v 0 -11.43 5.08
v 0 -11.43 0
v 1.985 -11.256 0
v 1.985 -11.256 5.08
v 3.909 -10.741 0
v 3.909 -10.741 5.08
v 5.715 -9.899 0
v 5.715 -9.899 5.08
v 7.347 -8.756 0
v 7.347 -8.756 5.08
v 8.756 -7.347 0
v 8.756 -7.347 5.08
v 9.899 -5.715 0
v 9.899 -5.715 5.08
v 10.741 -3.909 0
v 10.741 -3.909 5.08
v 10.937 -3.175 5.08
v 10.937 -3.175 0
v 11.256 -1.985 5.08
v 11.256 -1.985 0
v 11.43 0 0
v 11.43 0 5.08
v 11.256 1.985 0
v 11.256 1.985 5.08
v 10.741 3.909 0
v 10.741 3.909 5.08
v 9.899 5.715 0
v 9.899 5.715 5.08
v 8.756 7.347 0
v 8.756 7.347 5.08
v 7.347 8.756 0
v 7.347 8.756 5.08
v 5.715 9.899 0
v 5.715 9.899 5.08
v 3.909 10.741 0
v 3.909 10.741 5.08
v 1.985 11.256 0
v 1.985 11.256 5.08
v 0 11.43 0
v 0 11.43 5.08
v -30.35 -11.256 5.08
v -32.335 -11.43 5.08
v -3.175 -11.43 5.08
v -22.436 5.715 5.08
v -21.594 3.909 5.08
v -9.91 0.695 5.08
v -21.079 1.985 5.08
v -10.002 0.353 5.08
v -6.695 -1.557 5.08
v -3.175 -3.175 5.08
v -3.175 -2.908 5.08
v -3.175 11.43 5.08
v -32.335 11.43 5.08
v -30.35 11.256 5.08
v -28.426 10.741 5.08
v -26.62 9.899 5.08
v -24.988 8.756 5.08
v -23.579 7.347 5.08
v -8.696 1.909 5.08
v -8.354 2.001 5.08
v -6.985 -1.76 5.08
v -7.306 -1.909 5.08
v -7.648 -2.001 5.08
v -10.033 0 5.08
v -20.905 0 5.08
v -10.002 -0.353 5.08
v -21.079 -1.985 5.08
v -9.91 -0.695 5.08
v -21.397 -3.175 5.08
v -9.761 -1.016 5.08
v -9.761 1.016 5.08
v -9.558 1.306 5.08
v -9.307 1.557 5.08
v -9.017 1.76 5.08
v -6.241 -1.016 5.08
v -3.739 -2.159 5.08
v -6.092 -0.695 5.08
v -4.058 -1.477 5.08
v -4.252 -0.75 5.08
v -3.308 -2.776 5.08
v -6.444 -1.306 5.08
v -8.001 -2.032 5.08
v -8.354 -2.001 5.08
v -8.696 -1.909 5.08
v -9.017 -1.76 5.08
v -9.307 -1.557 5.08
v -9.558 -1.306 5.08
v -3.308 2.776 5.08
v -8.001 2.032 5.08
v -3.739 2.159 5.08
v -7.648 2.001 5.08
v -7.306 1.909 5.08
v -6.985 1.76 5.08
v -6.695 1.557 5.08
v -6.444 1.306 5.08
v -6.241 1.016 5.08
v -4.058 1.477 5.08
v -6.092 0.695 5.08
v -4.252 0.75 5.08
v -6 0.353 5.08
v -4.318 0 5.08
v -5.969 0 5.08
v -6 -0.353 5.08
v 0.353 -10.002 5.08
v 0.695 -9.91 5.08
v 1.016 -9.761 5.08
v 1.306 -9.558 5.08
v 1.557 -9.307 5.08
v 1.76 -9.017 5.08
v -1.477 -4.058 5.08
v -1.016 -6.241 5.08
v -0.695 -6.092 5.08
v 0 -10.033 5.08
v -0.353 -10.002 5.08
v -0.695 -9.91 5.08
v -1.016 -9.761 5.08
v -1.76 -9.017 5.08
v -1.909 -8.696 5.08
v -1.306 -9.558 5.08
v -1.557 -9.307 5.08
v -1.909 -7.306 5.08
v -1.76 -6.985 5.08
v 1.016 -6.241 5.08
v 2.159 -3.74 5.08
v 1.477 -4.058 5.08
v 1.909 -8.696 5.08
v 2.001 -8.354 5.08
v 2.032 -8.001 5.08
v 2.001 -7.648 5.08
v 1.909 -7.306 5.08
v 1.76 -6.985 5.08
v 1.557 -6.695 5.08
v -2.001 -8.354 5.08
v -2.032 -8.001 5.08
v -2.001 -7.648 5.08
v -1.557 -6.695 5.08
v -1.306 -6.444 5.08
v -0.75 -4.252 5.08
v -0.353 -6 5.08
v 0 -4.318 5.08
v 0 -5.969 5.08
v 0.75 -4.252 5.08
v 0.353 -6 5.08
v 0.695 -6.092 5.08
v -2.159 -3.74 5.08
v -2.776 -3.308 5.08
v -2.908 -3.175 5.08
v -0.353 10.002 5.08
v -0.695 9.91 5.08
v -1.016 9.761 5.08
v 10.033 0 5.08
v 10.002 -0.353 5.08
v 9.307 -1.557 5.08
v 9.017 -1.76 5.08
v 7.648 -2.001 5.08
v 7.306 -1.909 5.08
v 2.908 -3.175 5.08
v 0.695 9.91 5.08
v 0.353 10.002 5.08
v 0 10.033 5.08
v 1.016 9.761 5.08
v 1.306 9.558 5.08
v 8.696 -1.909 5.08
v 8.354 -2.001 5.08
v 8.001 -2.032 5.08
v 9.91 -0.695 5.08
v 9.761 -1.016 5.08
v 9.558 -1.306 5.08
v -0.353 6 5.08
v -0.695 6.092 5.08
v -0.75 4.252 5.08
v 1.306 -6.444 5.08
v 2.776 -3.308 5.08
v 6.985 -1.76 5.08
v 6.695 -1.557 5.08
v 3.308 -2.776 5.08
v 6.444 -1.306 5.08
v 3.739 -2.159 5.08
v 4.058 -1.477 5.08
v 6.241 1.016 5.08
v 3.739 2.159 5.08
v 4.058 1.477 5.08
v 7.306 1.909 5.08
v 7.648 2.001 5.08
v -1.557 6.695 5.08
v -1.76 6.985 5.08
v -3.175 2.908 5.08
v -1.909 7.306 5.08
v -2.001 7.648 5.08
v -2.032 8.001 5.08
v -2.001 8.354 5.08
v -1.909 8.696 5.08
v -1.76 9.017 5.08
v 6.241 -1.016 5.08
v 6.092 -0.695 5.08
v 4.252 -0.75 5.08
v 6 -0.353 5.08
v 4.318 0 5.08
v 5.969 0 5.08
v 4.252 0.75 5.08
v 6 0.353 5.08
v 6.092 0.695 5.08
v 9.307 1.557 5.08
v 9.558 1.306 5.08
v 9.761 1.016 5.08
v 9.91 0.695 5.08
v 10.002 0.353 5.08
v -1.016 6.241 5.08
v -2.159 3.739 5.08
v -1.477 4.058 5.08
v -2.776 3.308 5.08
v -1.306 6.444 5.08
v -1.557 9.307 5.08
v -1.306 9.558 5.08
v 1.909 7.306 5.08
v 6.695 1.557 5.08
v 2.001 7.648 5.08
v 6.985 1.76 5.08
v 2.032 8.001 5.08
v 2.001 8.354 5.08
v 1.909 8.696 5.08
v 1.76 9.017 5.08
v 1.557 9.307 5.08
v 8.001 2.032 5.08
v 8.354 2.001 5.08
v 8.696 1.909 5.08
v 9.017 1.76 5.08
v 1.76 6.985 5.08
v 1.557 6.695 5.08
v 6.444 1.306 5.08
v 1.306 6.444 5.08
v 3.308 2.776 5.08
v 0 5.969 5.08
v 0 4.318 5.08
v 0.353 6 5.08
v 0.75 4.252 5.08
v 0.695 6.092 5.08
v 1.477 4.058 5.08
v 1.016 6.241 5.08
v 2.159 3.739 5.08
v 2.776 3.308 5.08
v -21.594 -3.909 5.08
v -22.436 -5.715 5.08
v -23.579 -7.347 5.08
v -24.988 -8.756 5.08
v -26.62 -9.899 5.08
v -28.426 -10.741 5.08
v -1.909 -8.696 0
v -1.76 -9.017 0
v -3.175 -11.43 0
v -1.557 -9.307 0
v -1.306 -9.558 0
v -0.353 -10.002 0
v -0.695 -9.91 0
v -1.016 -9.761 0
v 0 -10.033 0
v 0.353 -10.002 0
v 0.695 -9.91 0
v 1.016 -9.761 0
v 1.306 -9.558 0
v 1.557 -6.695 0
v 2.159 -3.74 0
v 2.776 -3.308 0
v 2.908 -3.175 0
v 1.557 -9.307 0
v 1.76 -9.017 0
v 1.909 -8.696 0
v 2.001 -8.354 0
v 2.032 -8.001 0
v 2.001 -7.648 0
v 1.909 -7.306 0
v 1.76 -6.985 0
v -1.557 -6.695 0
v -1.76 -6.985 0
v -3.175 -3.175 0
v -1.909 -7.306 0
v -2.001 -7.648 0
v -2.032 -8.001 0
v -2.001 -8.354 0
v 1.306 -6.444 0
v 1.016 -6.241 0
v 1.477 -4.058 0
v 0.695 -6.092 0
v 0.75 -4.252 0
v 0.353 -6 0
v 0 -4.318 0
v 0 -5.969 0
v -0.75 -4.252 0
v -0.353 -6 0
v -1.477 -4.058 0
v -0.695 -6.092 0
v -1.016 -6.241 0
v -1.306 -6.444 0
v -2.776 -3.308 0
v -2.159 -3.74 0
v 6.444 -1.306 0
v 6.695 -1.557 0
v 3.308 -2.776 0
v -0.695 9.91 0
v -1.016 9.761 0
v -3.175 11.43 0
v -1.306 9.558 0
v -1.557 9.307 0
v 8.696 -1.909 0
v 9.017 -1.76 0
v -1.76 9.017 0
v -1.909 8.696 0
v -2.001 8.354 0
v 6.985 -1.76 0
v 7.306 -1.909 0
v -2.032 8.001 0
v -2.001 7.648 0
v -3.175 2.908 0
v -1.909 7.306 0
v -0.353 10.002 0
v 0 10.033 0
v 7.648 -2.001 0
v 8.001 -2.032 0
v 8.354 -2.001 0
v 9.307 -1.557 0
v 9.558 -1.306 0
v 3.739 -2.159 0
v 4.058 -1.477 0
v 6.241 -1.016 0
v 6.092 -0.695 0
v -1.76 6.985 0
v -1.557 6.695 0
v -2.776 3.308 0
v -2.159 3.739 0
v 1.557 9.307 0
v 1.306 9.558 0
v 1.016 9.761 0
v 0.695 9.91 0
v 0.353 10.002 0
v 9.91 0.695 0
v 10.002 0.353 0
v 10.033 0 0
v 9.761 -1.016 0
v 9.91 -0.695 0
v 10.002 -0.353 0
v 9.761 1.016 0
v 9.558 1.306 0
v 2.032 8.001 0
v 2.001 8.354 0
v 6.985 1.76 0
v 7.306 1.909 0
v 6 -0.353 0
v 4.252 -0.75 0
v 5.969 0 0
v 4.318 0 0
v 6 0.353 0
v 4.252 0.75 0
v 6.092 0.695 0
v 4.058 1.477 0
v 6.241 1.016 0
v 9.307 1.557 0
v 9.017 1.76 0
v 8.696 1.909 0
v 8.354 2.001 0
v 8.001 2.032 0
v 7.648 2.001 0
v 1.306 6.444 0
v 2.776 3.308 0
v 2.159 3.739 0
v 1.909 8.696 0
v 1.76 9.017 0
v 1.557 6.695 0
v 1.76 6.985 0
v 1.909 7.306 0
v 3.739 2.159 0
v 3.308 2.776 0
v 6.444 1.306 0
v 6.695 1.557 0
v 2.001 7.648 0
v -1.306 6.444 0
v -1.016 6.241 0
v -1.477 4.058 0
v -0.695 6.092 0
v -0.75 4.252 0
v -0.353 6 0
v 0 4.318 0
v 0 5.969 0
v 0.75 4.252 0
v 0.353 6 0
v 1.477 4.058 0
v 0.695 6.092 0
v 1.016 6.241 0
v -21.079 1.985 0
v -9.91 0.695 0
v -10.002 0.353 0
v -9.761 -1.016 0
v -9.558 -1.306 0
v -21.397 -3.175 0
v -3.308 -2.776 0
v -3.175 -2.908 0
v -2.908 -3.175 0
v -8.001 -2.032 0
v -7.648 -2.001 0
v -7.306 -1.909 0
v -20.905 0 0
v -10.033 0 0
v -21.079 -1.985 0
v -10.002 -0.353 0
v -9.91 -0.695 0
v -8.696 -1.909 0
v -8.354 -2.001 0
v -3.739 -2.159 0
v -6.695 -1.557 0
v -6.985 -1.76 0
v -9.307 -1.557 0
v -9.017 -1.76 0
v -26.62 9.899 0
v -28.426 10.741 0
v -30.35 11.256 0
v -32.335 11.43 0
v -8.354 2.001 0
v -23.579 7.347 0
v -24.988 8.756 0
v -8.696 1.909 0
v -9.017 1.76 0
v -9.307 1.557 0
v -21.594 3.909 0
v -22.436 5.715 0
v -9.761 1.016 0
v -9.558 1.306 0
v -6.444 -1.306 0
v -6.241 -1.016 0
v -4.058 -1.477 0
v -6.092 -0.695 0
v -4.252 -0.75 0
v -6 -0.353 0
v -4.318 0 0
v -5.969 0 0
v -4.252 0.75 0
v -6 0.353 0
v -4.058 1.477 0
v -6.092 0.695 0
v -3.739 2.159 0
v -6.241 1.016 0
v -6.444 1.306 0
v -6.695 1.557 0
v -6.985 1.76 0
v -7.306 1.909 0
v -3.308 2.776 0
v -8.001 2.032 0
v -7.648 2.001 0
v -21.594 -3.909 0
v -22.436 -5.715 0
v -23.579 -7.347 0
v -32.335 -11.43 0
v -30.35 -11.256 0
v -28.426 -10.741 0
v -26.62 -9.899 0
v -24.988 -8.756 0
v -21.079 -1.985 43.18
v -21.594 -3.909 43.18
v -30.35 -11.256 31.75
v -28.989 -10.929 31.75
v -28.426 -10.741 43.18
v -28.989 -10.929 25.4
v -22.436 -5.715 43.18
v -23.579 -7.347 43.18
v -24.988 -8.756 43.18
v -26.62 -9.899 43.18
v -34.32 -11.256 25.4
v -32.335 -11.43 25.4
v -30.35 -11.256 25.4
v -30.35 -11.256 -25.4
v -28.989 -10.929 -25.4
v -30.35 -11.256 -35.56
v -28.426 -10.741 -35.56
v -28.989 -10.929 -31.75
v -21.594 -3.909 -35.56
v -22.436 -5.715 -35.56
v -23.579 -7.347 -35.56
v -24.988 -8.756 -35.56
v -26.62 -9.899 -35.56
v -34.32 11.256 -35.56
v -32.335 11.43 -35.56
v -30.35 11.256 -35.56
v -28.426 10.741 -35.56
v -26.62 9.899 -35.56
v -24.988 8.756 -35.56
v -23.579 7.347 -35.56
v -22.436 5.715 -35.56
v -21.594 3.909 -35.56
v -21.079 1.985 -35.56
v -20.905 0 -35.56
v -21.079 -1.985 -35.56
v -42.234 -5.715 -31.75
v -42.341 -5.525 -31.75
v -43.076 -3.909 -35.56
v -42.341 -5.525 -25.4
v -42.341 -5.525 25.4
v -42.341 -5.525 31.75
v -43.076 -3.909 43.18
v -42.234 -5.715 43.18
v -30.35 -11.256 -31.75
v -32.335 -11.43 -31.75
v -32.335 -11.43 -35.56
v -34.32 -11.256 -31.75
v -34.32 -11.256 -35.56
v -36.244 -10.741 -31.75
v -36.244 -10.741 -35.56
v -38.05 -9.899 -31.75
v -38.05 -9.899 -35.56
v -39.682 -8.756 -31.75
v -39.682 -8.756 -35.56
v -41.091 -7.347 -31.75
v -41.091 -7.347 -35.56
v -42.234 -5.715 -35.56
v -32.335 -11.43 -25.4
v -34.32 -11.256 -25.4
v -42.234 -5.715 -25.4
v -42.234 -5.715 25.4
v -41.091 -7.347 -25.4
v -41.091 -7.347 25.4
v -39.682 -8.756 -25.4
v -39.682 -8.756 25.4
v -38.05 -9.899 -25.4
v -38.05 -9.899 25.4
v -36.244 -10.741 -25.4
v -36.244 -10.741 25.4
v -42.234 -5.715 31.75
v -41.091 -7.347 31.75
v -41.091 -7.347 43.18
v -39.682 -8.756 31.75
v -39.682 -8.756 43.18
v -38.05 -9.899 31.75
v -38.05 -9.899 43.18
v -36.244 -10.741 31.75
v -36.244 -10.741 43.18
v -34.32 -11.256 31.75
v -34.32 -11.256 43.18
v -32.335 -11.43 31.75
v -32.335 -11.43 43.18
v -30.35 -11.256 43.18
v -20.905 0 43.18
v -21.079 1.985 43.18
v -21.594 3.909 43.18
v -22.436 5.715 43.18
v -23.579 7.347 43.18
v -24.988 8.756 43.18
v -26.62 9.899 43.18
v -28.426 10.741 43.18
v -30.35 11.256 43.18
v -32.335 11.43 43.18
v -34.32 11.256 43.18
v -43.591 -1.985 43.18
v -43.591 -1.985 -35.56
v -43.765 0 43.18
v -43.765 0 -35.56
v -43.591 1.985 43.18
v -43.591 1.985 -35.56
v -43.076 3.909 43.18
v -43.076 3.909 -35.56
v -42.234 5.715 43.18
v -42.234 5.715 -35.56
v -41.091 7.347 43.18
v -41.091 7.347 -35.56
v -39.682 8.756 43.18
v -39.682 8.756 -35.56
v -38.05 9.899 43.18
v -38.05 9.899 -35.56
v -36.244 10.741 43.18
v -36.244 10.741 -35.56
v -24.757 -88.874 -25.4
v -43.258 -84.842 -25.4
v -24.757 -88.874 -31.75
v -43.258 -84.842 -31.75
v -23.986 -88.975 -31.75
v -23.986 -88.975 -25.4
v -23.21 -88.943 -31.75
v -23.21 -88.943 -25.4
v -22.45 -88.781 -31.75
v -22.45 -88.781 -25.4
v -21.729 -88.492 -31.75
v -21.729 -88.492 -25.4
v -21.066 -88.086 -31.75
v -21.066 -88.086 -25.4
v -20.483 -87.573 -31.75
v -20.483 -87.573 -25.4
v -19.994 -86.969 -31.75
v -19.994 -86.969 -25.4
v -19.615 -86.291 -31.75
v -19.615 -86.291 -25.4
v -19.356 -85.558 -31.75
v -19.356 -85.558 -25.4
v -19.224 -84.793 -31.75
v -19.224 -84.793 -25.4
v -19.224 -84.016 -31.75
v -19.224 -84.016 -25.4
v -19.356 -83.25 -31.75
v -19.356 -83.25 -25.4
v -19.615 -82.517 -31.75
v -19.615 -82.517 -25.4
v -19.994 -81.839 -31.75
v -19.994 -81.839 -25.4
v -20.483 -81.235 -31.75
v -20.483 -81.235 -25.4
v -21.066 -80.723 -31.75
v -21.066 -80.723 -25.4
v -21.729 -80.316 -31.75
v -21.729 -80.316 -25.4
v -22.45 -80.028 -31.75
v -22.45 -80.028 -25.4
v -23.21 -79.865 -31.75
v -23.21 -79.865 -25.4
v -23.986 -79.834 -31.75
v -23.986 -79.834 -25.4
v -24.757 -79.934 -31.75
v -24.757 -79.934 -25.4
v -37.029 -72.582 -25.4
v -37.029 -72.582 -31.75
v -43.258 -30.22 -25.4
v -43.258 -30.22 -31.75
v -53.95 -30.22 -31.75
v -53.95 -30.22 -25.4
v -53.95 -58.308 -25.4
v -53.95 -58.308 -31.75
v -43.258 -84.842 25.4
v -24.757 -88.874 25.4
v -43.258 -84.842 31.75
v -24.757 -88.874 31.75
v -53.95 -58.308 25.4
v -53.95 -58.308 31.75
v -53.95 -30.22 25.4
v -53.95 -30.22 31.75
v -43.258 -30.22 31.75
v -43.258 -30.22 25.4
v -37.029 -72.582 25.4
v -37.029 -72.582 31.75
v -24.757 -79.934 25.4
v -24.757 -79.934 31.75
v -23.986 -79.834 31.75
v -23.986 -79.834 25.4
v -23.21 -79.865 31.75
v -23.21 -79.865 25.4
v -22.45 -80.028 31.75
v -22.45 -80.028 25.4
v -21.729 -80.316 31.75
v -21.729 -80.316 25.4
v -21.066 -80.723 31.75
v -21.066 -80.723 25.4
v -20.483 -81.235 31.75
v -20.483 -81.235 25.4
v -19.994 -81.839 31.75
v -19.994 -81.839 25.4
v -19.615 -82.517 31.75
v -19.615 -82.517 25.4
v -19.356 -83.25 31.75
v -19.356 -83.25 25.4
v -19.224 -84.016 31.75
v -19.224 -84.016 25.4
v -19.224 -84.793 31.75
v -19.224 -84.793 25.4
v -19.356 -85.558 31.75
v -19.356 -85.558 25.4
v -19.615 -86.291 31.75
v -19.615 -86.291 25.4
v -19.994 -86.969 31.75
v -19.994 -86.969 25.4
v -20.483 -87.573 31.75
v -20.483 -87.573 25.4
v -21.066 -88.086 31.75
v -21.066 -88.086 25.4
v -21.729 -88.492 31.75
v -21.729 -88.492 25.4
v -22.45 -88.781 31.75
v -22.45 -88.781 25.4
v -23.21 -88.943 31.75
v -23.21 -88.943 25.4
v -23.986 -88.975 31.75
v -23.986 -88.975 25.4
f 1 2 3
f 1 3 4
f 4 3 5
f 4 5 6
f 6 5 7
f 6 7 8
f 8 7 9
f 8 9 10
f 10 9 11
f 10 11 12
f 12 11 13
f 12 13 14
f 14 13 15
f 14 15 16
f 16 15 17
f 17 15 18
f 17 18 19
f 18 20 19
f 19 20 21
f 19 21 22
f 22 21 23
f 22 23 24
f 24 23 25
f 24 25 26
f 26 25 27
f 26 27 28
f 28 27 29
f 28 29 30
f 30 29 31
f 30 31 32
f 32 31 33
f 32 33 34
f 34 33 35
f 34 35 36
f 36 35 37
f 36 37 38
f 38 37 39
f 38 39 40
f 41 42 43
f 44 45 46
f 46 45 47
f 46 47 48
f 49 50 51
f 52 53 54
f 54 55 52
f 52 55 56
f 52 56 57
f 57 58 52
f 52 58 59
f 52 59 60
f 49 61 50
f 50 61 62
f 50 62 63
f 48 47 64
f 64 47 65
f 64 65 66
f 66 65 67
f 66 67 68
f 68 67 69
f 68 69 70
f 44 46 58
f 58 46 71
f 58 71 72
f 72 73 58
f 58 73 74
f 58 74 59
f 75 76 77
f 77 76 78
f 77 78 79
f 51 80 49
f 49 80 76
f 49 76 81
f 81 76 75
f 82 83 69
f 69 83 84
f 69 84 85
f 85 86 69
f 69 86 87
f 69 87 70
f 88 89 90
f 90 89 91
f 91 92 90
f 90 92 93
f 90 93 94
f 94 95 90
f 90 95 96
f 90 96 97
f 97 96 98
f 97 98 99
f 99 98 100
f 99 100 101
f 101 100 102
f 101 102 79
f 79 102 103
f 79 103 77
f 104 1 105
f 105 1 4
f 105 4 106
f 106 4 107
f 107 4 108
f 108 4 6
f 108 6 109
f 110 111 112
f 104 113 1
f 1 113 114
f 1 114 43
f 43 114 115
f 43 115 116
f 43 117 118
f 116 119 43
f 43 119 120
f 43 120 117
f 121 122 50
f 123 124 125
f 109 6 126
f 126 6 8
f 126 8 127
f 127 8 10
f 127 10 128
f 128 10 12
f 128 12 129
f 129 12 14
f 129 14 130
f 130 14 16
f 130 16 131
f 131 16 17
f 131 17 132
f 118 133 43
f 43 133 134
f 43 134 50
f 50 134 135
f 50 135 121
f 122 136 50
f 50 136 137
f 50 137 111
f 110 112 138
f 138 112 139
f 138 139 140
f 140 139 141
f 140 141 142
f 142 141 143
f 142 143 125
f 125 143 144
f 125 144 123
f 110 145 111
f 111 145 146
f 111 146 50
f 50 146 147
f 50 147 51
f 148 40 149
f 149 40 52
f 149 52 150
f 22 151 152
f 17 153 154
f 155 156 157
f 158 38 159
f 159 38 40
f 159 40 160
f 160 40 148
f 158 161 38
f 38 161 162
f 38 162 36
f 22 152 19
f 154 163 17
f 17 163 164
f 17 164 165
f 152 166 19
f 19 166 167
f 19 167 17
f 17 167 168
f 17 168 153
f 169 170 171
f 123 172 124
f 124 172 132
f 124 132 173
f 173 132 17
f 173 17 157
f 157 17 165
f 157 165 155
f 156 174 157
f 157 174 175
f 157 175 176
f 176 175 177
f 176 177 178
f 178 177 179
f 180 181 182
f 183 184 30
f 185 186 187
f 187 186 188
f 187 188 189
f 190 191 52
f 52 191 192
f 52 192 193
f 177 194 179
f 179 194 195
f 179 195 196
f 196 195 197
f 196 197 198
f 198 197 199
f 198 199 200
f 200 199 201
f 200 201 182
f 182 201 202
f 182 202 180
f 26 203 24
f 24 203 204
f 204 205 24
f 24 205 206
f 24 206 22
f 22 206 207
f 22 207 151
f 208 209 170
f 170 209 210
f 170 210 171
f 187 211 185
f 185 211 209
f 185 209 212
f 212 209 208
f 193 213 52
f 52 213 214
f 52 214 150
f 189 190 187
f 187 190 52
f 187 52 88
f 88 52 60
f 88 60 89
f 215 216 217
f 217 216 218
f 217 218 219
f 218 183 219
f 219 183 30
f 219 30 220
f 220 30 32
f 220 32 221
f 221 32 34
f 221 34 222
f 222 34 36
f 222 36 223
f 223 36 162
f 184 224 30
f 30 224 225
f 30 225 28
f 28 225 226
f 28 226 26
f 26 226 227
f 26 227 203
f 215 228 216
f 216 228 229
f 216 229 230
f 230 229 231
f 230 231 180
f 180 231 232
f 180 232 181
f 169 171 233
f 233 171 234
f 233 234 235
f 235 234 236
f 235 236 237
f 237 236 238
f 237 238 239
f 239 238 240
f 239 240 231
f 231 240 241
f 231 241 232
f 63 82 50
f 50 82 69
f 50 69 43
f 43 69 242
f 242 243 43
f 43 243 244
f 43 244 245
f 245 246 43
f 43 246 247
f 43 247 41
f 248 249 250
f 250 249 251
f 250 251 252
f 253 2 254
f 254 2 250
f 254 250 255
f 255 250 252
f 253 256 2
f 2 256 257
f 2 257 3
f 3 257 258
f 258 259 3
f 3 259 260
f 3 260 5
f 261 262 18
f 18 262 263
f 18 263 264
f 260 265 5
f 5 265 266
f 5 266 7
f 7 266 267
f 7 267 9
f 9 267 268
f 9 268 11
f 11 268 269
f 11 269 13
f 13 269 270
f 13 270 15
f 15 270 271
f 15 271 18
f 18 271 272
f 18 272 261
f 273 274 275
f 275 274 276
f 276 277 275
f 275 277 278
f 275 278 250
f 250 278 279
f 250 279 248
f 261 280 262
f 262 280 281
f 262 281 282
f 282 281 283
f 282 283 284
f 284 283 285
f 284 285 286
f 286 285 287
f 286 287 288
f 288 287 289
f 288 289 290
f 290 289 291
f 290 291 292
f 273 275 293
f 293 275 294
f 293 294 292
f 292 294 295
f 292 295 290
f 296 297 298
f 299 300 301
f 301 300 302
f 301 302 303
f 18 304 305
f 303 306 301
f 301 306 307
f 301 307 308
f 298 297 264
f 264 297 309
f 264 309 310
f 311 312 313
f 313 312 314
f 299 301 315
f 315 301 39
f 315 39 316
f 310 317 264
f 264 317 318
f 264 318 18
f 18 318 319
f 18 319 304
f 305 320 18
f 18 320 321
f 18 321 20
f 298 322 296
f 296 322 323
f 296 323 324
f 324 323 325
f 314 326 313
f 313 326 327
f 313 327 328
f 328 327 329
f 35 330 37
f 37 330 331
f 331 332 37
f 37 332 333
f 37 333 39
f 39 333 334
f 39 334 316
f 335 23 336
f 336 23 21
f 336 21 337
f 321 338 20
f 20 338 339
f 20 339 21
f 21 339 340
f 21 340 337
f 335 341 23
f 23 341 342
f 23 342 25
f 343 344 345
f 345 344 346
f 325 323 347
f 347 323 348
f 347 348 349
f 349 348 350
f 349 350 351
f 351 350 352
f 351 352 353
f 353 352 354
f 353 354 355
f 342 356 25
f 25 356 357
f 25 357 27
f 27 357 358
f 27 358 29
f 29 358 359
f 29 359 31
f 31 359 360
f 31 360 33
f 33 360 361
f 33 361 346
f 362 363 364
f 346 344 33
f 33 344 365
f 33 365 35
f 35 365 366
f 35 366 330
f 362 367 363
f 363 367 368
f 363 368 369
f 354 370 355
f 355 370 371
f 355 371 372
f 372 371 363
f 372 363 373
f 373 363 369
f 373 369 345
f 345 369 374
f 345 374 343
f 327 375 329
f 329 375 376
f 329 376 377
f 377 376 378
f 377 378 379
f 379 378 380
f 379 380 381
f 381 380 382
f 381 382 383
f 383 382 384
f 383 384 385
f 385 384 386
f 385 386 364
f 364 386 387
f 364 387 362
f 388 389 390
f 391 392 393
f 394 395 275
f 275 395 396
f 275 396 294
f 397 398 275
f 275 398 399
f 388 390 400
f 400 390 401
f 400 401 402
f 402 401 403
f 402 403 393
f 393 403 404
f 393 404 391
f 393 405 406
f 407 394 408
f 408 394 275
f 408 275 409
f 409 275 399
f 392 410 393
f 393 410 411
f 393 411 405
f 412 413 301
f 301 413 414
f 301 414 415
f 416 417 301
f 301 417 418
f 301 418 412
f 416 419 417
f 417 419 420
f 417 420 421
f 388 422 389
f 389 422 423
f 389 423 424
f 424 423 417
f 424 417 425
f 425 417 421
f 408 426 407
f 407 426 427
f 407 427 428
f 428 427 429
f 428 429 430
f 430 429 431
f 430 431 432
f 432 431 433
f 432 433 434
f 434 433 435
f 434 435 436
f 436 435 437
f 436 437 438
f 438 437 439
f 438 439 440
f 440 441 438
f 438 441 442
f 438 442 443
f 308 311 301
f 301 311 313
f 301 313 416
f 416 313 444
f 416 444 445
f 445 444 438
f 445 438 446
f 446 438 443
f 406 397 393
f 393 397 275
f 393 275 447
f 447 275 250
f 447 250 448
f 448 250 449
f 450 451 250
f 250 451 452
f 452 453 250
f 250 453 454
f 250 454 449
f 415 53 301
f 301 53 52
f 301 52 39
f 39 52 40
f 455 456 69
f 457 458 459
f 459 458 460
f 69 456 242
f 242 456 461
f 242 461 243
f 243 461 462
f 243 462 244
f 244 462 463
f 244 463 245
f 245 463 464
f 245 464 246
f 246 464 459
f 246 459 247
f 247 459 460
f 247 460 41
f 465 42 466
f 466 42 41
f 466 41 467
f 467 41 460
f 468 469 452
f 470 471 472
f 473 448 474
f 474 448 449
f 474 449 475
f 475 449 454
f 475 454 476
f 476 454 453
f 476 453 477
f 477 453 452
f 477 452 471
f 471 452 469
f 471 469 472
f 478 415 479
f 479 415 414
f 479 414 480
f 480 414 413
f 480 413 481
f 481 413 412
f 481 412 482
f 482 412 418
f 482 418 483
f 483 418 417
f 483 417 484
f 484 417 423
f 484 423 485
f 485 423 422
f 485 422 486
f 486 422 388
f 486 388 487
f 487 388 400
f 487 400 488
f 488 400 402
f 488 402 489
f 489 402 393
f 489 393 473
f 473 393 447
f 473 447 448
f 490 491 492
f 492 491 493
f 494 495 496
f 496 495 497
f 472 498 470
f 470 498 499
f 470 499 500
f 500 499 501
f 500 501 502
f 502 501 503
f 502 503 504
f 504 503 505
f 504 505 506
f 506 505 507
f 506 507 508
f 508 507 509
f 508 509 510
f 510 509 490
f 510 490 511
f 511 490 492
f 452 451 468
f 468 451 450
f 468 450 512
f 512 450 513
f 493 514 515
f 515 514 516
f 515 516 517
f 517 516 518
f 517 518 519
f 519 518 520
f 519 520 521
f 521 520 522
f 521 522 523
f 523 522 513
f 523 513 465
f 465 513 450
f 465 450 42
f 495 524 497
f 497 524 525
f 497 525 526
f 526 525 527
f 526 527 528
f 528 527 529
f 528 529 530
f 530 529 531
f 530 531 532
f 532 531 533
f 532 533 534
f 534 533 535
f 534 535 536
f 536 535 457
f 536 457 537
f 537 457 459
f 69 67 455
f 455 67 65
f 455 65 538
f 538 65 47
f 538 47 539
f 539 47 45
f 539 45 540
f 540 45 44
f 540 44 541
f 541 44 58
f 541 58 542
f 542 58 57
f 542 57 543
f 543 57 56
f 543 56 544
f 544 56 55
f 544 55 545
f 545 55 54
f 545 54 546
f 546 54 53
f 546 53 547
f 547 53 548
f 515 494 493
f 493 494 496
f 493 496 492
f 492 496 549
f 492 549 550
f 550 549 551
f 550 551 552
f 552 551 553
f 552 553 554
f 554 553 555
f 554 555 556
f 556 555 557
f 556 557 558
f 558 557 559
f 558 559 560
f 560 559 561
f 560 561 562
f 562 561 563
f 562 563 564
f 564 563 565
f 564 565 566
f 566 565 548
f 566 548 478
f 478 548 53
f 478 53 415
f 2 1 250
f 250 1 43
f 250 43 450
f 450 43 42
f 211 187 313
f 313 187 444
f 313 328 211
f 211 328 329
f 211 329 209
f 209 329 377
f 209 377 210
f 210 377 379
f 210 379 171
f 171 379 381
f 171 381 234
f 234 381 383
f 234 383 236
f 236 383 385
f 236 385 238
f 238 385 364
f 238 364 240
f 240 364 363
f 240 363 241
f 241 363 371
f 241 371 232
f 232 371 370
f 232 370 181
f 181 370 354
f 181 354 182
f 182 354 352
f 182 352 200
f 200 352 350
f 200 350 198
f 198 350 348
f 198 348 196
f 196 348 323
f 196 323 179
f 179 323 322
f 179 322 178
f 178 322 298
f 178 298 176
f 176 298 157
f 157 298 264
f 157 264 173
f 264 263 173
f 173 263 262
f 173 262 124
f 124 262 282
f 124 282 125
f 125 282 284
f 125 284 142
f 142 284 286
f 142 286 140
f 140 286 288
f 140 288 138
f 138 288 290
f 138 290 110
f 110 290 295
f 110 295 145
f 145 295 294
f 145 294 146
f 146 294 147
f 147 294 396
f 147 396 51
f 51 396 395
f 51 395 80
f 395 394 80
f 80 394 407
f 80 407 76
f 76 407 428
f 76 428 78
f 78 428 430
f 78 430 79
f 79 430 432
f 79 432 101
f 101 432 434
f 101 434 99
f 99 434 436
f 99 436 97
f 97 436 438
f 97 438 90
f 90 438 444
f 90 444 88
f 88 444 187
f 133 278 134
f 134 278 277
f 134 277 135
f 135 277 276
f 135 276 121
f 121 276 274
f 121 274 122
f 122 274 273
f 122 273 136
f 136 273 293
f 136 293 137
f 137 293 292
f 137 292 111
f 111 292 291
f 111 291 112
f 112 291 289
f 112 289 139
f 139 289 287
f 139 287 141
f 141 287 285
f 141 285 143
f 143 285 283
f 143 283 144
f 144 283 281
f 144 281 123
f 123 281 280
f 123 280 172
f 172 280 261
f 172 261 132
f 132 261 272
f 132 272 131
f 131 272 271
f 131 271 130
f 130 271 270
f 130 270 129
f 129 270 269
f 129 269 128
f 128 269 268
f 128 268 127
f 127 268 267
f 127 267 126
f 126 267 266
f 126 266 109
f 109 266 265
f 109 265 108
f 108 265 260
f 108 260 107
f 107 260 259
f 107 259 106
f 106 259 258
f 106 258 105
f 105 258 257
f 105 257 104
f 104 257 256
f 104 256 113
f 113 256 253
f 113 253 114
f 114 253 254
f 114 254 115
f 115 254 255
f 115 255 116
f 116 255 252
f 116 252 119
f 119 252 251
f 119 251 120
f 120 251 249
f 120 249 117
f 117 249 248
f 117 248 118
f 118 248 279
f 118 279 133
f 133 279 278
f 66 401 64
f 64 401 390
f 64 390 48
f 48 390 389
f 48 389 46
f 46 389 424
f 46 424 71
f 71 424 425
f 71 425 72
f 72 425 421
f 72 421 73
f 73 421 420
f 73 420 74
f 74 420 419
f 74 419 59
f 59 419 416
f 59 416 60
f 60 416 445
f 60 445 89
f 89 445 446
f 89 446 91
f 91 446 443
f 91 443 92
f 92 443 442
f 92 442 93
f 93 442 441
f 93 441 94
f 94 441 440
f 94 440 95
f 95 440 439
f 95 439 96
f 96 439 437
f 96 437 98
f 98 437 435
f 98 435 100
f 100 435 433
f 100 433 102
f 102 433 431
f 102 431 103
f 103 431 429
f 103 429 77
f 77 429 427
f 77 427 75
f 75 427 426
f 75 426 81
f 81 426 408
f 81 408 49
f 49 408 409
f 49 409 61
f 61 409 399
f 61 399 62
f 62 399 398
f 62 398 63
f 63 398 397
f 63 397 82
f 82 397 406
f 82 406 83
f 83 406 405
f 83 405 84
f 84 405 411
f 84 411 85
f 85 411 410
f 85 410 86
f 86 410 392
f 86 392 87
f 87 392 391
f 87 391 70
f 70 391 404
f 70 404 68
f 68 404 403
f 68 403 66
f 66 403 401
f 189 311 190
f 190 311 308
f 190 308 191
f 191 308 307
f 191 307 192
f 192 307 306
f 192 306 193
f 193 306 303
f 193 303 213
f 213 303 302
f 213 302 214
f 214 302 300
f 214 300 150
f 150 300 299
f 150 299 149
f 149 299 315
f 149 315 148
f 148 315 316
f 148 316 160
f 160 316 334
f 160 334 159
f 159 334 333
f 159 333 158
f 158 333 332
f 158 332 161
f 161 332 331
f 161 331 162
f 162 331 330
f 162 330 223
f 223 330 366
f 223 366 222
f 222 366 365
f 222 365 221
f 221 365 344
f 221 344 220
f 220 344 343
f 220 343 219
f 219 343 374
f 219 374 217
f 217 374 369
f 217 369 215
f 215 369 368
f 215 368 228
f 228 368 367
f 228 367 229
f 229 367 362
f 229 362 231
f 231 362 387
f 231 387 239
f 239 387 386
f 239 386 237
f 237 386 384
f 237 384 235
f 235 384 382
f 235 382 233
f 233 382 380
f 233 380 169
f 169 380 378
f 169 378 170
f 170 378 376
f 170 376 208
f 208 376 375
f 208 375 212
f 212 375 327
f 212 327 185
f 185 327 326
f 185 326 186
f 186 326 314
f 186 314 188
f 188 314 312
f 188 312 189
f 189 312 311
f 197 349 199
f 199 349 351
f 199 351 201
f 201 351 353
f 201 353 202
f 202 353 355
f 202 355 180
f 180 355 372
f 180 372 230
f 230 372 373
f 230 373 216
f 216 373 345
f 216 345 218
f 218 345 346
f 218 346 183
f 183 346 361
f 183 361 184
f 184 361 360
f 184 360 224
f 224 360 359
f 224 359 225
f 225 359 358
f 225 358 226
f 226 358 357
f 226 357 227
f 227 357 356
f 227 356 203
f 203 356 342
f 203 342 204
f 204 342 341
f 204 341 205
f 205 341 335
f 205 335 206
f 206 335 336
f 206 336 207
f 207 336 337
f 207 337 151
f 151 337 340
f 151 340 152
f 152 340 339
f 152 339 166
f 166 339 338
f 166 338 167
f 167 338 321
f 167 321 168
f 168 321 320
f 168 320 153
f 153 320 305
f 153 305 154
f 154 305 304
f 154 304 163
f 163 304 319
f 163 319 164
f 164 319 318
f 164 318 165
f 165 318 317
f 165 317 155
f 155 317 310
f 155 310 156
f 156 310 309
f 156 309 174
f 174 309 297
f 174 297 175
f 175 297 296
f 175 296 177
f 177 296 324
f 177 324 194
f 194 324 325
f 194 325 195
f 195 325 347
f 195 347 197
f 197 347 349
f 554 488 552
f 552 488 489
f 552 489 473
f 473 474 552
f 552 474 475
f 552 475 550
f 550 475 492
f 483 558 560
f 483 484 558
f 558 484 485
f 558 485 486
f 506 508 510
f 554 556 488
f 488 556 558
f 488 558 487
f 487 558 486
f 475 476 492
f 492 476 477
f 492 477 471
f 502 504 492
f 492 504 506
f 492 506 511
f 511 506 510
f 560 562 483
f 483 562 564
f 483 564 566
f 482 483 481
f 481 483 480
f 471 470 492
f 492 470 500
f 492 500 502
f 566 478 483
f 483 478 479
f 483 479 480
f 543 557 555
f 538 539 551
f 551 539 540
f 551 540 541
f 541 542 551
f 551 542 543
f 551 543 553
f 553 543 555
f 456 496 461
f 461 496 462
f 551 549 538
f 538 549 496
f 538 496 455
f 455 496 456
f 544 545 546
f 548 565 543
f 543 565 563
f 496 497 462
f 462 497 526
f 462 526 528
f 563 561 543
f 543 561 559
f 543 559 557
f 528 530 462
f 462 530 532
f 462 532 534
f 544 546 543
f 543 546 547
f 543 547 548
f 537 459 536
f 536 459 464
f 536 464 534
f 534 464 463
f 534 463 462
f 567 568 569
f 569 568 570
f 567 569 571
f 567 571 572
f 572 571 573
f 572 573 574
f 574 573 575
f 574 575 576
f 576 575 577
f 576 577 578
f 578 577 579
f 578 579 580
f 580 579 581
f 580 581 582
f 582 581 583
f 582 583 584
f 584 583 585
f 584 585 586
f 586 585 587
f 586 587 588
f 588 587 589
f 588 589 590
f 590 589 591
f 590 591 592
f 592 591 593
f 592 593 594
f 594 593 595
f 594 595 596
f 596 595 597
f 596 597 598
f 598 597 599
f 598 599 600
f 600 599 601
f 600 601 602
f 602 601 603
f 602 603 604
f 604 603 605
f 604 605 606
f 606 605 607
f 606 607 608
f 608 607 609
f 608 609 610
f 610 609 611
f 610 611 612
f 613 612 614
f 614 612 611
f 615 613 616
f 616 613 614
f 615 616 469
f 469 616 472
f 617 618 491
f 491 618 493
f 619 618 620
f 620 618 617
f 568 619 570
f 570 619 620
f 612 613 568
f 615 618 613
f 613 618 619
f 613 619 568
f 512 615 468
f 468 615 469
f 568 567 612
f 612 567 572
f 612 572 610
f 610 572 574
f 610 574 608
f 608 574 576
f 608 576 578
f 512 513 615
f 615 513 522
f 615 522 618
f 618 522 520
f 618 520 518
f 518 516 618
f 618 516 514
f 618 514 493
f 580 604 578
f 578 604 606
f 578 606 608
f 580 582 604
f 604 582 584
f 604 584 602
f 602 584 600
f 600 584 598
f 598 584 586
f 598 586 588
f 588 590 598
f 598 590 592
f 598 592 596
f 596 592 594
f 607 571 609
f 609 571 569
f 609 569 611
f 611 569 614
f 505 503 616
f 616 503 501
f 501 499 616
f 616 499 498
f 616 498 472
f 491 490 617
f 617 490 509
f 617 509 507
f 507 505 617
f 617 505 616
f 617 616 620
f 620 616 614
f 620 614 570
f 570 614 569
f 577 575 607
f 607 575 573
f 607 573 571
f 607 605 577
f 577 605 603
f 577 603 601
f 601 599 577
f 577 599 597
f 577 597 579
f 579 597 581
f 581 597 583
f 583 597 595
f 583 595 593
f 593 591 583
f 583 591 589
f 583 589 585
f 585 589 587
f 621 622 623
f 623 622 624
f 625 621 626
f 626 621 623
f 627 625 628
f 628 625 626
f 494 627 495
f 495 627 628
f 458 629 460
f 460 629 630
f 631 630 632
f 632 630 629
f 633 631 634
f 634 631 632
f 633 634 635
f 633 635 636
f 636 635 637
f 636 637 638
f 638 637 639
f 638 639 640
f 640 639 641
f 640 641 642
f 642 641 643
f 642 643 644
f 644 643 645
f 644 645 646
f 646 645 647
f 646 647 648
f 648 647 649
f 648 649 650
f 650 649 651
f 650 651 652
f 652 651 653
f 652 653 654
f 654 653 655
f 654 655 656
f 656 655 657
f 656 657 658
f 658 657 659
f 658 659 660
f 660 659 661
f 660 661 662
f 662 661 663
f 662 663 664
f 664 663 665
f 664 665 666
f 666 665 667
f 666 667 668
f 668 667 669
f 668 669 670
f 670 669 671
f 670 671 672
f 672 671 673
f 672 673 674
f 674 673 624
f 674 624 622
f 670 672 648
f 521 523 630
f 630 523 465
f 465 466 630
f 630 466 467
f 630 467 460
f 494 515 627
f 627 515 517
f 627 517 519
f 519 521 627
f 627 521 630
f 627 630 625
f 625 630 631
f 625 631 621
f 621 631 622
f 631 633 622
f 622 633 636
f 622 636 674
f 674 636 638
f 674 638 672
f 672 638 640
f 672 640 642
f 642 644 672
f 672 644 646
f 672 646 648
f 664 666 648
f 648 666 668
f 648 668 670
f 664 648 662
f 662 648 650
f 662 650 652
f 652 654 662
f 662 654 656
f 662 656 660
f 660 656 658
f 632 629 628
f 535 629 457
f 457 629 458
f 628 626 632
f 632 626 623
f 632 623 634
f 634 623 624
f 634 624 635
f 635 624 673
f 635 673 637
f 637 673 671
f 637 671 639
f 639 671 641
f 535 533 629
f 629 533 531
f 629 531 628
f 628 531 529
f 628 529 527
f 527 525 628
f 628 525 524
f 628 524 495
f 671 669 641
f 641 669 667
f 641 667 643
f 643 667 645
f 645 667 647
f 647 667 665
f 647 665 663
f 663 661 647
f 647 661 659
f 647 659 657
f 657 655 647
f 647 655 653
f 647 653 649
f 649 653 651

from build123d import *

# Parameters (mm, degrees)
SKETCH2_R                = 11.43
BOSS_EXTRUDE1_DEPTH      = 5.08
BOSS_EXTRUDE2_DEPTH      = 5.08
SKETCH4_R                = 4.318
SKETCH4_R_2              = 2.032
CUT_EXTRUDE1_DEPTH       = 5.08
CIRPATTERN1_COUNT        = 4
BOSS_EXTRUDE3_DEPTH      = 38.1
BOSS_EXTRUDE3_DEPTH_BACK = 40.64
SKETCH9_R                = 11.43
BOSS_EXTRUDE4_DEPTH      = 6.35


with BuildPart() as part:
    # Sketch2 → Boss-Extrude1 (new body)
    with BuildSketch(Plane.XY):
        Circle(SKETCH2_R)
    extrude(amount=BOSS_EXTRUDE1_DEPTH)

    # Sketch7 → Boss-Extrude2 (add)
    with BuildSketch(Plane(origin=(0, 0, 0), x_dir=(-1, 0, 0), z_dir=(0, 0, -1))):
        with BuildLine():
            Line((0, 11.43), (32.334928423, 11.43))
            ThreePointArc((32.334928423, 11.43), (43.764928423, 0), (32.334928423, -11.43))
            Line((32.334928423, -11.43), (0, -11.43))
            Line((0, -11.43), (0, 11.43))
        make_face()
    extrude(amount=-BOSS_EXTRUDE2_DEPTH)

    # Sketch4 → Cut-Extrude1 (cut)
    with BuildSketch(Plane(origin=(0, 0, 0), x_dir=(-1, 0, 0), z_dir=(0, 0, -1))):
        Circle(SKETCH4_R)
        with Locations((0, -8.001)):
            Circle(SKETCH4_R_2)
    cut_extrude1 = extrude(amount=-CUT_EXTRUDE1_DEPTH, mode=Mode.SUBTRACT)

    # CirPattern1: Cut-Extrude1 ×4 about axis
    cirpattern1_axis = Axis((0, 0, 0), (0, 0, 1))
    for i in range(1, CIRPATTERN1_COUNT):
        add(cut_extrude1.rotate(cirpattern1_axis, i * 360 / CIRPATTERN1_COUNT), mode=Mode.SUBTRACT)

    # Sketch9 → Boss-Extrude3 (add, two sides: drawn at the far end of the back side and taken through both)
    with BuildSketch(Plane.XY.offset(5.08).offset(-BOSS_EXTRUDE3_DEPTH_BACK)):
        with Locations((-32.334928423, 0)):
            Circle(SKETCH9_R)
    extrude(amount=BOSS_EXTRUDE3_DEPTH + BOSS_EXTRUDE3_DEPTH_BACK)

    # Sketch10 → Boss-Extrude4 (add)
    with BuildSketch(Plane.XY.offset(-31.75)):
        with BuildLine():
            Line((-37.028733454, -72.582202646), (-43.258278065, -30.219589225))
            Line((-43.258278065, -30.219589225), (-20.904928423, 0))
            Line((-20.904928423, 0), (-32.171436877, 0.015474968))
            Line((-32.171436877, 0.015474968), (-39.730825163, 0.025858069))
            Line((-39.730825163, 0.025858069), (-53.950343023, -30.219589225))
            Line((-53.950343023, -30.219589225), (-53.950343023, -58.308345581))
            Line((-53.950343023, -58.308345581), (-43.258278065, -84.842076202))
            Line((-43.258278065, -84.842076202), (-24.756596451, -88.874141931))
            ThreePointArc((-24.756596451, -88.874141931), (-19.207535115, -84.404142538), (-24.756596451, -79.934143145))
            Line((-24.756596451, -79.934143145), (-37.028733454, -72.582202646))
        make_face()
    boss_extrude4 = extrude(amount=BOSS_EXTRUDE4_DEPTH)

    # Mirror1: Boss-Extrude4 across plane
    add(boss_extrude4.mirror(Plane.XY))


solid = part.part
